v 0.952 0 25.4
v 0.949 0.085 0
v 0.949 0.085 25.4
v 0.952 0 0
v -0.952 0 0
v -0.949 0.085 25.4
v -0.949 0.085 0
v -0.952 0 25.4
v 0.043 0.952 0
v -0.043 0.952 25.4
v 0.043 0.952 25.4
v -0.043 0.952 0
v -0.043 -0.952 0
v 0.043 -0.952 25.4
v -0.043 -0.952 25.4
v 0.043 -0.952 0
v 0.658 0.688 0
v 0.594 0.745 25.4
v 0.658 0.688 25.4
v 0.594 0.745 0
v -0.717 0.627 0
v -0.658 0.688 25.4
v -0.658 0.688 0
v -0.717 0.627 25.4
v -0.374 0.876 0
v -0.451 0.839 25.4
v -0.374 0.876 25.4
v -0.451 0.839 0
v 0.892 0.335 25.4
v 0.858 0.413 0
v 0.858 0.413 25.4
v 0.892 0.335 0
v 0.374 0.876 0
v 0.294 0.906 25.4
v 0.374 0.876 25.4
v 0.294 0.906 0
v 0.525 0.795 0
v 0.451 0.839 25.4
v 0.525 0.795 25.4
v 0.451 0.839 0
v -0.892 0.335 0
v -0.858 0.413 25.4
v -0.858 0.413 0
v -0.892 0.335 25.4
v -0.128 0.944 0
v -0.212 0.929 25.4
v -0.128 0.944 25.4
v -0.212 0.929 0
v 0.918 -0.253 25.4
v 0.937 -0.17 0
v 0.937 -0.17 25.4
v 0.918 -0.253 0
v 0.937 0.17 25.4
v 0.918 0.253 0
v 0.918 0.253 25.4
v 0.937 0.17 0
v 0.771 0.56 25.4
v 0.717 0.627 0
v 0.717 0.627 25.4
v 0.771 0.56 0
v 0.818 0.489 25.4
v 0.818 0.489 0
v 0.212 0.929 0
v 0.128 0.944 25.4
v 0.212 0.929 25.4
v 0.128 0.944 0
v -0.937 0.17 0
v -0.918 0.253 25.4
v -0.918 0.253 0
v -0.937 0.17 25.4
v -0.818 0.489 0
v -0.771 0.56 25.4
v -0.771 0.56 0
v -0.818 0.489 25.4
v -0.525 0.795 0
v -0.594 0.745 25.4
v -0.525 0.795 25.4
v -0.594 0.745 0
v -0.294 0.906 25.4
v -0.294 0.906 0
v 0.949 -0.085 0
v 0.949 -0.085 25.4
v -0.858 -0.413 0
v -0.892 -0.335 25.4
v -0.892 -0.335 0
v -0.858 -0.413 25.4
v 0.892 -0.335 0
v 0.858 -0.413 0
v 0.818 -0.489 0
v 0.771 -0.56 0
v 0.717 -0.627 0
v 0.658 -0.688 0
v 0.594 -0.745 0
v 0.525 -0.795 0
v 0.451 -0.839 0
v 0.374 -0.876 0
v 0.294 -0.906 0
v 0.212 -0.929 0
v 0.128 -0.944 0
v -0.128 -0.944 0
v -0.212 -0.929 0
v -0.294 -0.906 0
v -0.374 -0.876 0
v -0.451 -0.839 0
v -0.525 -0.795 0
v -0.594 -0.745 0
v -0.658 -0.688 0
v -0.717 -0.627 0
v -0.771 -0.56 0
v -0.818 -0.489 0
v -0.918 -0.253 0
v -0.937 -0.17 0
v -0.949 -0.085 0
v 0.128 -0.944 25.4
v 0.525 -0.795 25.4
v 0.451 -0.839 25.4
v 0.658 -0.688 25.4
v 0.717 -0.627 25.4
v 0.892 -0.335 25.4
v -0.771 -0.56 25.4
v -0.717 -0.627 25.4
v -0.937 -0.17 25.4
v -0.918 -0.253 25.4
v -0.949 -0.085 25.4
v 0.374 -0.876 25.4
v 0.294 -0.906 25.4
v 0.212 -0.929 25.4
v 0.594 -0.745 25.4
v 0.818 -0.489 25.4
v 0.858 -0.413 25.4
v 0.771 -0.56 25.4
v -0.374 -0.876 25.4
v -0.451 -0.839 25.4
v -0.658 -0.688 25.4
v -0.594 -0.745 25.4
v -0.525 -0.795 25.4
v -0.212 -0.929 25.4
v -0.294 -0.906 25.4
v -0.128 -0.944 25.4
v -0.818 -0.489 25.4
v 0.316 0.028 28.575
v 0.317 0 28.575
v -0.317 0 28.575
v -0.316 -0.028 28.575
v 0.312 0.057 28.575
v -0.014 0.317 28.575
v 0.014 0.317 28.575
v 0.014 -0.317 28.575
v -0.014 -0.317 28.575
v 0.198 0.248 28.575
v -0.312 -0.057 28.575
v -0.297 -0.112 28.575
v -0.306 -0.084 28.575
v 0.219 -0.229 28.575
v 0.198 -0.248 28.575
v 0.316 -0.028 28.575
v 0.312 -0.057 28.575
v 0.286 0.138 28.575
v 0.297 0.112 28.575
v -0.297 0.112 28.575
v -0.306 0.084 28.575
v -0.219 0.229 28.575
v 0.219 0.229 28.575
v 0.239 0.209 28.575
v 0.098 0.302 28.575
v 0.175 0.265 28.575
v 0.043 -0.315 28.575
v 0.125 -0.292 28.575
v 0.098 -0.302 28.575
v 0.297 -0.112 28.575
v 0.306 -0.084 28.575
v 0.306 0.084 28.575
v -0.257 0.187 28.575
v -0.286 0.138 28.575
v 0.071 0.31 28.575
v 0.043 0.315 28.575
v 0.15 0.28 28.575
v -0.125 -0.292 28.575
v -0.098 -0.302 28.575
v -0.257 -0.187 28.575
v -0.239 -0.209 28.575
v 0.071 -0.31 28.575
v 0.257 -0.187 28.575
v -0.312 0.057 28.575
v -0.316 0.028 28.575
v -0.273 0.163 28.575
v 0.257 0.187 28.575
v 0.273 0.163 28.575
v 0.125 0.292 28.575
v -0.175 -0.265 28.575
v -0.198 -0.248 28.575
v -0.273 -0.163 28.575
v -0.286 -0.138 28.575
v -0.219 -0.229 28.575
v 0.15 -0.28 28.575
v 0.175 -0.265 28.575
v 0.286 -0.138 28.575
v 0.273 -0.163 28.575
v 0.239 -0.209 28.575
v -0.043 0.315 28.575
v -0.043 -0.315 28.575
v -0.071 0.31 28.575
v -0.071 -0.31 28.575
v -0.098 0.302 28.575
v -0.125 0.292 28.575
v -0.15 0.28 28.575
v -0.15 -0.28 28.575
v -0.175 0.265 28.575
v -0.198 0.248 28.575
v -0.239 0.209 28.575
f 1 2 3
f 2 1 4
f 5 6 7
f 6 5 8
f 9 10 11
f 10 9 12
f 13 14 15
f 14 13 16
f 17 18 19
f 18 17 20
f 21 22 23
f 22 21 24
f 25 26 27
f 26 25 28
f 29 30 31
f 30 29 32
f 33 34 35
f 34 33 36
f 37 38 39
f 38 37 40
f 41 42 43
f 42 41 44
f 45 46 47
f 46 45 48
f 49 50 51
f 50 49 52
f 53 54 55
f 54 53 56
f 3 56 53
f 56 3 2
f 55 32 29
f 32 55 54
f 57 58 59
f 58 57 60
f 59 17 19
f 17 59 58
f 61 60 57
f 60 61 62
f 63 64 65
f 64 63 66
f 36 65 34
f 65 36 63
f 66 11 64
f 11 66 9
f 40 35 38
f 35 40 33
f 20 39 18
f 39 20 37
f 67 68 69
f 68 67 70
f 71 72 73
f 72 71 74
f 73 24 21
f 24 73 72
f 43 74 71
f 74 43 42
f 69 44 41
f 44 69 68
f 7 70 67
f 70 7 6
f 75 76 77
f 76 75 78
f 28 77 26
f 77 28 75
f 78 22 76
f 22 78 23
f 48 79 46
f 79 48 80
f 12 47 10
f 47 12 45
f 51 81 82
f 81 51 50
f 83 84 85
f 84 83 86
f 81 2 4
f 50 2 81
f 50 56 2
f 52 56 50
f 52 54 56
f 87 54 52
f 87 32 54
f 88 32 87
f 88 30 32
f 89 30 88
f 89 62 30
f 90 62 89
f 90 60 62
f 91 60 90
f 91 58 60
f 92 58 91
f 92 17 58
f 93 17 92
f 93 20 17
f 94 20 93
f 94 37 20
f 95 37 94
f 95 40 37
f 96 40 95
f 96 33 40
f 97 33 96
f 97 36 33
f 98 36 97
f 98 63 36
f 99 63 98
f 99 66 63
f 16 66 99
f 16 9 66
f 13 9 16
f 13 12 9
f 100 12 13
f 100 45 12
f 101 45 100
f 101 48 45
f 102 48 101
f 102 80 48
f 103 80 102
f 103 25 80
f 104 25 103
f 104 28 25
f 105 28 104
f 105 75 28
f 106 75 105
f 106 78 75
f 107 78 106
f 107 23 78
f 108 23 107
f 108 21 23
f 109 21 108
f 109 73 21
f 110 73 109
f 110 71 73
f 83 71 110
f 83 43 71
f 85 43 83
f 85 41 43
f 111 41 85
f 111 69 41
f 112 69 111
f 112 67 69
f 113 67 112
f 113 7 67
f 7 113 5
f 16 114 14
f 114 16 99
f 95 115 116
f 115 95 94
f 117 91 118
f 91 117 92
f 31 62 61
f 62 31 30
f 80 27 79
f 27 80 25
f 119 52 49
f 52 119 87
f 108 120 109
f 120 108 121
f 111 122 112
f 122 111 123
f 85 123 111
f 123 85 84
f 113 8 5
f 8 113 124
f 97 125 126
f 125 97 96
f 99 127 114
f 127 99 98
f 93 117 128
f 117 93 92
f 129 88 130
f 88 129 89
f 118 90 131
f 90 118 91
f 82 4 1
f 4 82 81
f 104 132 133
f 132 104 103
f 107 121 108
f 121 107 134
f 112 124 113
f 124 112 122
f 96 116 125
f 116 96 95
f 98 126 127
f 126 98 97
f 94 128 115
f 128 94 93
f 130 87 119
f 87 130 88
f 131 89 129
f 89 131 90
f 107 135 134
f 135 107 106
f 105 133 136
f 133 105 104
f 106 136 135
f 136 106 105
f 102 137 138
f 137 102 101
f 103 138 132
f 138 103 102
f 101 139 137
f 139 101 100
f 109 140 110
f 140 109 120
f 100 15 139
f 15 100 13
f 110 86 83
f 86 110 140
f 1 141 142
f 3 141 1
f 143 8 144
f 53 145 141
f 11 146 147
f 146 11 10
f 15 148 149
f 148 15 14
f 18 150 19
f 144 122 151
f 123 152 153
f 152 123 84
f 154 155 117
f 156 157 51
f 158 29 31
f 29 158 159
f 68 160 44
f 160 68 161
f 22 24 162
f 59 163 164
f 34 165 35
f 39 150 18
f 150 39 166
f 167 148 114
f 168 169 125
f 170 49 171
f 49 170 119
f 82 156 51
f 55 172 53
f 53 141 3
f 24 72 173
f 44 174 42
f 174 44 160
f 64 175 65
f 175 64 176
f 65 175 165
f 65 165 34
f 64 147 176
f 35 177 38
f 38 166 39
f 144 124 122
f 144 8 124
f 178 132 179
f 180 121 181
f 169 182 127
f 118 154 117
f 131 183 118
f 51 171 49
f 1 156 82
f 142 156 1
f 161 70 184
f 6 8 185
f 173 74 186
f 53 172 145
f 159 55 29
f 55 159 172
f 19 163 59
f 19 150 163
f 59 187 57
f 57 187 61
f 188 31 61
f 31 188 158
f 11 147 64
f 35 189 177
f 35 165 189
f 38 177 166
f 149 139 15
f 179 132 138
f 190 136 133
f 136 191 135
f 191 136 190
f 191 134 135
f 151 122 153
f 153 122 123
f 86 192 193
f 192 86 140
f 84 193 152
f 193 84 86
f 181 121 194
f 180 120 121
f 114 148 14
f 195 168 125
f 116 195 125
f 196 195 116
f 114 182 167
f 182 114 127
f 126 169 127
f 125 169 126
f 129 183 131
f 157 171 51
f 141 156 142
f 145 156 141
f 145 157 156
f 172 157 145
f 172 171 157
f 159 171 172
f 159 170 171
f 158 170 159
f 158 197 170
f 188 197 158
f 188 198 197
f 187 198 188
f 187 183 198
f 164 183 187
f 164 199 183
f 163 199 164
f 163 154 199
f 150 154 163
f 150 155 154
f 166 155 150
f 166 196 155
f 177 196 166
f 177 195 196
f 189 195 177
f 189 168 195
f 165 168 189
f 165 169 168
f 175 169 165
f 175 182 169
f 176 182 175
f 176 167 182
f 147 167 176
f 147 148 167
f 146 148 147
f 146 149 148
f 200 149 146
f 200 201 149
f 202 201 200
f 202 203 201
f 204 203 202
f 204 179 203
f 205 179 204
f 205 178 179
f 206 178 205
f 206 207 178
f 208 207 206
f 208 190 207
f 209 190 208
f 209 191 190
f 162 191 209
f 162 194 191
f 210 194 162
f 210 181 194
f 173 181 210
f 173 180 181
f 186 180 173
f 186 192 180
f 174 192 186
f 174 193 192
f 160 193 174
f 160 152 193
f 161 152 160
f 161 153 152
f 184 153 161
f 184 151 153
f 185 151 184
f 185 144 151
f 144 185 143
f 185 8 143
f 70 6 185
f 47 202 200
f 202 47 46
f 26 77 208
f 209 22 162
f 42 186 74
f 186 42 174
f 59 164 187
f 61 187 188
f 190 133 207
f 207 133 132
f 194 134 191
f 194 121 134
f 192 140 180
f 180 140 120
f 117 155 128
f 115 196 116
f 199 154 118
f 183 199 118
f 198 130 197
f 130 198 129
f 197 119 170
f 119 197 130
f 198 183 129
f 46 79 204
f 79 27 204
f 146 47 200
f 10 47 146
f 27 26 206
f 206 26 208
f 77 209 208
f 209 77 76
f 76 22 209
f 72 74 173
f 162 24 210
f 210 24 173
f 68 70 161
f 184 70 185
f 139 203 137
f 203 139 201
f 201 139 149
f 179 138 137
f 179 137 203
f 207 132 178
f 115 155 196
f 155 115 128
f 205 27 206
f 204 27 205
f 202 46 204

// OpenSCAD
// Part   : Component 9 - Rear Mast
// Author : Rafi Khan
// Team   : Innovator

cylinder(h=25.4, d=1.905, center=false, $fn=70);
translate([0, 0, 25.4]) {
	cylinder(h=3.175, d1=1.905, d2=0.635, center=false, $fn=70);
}
